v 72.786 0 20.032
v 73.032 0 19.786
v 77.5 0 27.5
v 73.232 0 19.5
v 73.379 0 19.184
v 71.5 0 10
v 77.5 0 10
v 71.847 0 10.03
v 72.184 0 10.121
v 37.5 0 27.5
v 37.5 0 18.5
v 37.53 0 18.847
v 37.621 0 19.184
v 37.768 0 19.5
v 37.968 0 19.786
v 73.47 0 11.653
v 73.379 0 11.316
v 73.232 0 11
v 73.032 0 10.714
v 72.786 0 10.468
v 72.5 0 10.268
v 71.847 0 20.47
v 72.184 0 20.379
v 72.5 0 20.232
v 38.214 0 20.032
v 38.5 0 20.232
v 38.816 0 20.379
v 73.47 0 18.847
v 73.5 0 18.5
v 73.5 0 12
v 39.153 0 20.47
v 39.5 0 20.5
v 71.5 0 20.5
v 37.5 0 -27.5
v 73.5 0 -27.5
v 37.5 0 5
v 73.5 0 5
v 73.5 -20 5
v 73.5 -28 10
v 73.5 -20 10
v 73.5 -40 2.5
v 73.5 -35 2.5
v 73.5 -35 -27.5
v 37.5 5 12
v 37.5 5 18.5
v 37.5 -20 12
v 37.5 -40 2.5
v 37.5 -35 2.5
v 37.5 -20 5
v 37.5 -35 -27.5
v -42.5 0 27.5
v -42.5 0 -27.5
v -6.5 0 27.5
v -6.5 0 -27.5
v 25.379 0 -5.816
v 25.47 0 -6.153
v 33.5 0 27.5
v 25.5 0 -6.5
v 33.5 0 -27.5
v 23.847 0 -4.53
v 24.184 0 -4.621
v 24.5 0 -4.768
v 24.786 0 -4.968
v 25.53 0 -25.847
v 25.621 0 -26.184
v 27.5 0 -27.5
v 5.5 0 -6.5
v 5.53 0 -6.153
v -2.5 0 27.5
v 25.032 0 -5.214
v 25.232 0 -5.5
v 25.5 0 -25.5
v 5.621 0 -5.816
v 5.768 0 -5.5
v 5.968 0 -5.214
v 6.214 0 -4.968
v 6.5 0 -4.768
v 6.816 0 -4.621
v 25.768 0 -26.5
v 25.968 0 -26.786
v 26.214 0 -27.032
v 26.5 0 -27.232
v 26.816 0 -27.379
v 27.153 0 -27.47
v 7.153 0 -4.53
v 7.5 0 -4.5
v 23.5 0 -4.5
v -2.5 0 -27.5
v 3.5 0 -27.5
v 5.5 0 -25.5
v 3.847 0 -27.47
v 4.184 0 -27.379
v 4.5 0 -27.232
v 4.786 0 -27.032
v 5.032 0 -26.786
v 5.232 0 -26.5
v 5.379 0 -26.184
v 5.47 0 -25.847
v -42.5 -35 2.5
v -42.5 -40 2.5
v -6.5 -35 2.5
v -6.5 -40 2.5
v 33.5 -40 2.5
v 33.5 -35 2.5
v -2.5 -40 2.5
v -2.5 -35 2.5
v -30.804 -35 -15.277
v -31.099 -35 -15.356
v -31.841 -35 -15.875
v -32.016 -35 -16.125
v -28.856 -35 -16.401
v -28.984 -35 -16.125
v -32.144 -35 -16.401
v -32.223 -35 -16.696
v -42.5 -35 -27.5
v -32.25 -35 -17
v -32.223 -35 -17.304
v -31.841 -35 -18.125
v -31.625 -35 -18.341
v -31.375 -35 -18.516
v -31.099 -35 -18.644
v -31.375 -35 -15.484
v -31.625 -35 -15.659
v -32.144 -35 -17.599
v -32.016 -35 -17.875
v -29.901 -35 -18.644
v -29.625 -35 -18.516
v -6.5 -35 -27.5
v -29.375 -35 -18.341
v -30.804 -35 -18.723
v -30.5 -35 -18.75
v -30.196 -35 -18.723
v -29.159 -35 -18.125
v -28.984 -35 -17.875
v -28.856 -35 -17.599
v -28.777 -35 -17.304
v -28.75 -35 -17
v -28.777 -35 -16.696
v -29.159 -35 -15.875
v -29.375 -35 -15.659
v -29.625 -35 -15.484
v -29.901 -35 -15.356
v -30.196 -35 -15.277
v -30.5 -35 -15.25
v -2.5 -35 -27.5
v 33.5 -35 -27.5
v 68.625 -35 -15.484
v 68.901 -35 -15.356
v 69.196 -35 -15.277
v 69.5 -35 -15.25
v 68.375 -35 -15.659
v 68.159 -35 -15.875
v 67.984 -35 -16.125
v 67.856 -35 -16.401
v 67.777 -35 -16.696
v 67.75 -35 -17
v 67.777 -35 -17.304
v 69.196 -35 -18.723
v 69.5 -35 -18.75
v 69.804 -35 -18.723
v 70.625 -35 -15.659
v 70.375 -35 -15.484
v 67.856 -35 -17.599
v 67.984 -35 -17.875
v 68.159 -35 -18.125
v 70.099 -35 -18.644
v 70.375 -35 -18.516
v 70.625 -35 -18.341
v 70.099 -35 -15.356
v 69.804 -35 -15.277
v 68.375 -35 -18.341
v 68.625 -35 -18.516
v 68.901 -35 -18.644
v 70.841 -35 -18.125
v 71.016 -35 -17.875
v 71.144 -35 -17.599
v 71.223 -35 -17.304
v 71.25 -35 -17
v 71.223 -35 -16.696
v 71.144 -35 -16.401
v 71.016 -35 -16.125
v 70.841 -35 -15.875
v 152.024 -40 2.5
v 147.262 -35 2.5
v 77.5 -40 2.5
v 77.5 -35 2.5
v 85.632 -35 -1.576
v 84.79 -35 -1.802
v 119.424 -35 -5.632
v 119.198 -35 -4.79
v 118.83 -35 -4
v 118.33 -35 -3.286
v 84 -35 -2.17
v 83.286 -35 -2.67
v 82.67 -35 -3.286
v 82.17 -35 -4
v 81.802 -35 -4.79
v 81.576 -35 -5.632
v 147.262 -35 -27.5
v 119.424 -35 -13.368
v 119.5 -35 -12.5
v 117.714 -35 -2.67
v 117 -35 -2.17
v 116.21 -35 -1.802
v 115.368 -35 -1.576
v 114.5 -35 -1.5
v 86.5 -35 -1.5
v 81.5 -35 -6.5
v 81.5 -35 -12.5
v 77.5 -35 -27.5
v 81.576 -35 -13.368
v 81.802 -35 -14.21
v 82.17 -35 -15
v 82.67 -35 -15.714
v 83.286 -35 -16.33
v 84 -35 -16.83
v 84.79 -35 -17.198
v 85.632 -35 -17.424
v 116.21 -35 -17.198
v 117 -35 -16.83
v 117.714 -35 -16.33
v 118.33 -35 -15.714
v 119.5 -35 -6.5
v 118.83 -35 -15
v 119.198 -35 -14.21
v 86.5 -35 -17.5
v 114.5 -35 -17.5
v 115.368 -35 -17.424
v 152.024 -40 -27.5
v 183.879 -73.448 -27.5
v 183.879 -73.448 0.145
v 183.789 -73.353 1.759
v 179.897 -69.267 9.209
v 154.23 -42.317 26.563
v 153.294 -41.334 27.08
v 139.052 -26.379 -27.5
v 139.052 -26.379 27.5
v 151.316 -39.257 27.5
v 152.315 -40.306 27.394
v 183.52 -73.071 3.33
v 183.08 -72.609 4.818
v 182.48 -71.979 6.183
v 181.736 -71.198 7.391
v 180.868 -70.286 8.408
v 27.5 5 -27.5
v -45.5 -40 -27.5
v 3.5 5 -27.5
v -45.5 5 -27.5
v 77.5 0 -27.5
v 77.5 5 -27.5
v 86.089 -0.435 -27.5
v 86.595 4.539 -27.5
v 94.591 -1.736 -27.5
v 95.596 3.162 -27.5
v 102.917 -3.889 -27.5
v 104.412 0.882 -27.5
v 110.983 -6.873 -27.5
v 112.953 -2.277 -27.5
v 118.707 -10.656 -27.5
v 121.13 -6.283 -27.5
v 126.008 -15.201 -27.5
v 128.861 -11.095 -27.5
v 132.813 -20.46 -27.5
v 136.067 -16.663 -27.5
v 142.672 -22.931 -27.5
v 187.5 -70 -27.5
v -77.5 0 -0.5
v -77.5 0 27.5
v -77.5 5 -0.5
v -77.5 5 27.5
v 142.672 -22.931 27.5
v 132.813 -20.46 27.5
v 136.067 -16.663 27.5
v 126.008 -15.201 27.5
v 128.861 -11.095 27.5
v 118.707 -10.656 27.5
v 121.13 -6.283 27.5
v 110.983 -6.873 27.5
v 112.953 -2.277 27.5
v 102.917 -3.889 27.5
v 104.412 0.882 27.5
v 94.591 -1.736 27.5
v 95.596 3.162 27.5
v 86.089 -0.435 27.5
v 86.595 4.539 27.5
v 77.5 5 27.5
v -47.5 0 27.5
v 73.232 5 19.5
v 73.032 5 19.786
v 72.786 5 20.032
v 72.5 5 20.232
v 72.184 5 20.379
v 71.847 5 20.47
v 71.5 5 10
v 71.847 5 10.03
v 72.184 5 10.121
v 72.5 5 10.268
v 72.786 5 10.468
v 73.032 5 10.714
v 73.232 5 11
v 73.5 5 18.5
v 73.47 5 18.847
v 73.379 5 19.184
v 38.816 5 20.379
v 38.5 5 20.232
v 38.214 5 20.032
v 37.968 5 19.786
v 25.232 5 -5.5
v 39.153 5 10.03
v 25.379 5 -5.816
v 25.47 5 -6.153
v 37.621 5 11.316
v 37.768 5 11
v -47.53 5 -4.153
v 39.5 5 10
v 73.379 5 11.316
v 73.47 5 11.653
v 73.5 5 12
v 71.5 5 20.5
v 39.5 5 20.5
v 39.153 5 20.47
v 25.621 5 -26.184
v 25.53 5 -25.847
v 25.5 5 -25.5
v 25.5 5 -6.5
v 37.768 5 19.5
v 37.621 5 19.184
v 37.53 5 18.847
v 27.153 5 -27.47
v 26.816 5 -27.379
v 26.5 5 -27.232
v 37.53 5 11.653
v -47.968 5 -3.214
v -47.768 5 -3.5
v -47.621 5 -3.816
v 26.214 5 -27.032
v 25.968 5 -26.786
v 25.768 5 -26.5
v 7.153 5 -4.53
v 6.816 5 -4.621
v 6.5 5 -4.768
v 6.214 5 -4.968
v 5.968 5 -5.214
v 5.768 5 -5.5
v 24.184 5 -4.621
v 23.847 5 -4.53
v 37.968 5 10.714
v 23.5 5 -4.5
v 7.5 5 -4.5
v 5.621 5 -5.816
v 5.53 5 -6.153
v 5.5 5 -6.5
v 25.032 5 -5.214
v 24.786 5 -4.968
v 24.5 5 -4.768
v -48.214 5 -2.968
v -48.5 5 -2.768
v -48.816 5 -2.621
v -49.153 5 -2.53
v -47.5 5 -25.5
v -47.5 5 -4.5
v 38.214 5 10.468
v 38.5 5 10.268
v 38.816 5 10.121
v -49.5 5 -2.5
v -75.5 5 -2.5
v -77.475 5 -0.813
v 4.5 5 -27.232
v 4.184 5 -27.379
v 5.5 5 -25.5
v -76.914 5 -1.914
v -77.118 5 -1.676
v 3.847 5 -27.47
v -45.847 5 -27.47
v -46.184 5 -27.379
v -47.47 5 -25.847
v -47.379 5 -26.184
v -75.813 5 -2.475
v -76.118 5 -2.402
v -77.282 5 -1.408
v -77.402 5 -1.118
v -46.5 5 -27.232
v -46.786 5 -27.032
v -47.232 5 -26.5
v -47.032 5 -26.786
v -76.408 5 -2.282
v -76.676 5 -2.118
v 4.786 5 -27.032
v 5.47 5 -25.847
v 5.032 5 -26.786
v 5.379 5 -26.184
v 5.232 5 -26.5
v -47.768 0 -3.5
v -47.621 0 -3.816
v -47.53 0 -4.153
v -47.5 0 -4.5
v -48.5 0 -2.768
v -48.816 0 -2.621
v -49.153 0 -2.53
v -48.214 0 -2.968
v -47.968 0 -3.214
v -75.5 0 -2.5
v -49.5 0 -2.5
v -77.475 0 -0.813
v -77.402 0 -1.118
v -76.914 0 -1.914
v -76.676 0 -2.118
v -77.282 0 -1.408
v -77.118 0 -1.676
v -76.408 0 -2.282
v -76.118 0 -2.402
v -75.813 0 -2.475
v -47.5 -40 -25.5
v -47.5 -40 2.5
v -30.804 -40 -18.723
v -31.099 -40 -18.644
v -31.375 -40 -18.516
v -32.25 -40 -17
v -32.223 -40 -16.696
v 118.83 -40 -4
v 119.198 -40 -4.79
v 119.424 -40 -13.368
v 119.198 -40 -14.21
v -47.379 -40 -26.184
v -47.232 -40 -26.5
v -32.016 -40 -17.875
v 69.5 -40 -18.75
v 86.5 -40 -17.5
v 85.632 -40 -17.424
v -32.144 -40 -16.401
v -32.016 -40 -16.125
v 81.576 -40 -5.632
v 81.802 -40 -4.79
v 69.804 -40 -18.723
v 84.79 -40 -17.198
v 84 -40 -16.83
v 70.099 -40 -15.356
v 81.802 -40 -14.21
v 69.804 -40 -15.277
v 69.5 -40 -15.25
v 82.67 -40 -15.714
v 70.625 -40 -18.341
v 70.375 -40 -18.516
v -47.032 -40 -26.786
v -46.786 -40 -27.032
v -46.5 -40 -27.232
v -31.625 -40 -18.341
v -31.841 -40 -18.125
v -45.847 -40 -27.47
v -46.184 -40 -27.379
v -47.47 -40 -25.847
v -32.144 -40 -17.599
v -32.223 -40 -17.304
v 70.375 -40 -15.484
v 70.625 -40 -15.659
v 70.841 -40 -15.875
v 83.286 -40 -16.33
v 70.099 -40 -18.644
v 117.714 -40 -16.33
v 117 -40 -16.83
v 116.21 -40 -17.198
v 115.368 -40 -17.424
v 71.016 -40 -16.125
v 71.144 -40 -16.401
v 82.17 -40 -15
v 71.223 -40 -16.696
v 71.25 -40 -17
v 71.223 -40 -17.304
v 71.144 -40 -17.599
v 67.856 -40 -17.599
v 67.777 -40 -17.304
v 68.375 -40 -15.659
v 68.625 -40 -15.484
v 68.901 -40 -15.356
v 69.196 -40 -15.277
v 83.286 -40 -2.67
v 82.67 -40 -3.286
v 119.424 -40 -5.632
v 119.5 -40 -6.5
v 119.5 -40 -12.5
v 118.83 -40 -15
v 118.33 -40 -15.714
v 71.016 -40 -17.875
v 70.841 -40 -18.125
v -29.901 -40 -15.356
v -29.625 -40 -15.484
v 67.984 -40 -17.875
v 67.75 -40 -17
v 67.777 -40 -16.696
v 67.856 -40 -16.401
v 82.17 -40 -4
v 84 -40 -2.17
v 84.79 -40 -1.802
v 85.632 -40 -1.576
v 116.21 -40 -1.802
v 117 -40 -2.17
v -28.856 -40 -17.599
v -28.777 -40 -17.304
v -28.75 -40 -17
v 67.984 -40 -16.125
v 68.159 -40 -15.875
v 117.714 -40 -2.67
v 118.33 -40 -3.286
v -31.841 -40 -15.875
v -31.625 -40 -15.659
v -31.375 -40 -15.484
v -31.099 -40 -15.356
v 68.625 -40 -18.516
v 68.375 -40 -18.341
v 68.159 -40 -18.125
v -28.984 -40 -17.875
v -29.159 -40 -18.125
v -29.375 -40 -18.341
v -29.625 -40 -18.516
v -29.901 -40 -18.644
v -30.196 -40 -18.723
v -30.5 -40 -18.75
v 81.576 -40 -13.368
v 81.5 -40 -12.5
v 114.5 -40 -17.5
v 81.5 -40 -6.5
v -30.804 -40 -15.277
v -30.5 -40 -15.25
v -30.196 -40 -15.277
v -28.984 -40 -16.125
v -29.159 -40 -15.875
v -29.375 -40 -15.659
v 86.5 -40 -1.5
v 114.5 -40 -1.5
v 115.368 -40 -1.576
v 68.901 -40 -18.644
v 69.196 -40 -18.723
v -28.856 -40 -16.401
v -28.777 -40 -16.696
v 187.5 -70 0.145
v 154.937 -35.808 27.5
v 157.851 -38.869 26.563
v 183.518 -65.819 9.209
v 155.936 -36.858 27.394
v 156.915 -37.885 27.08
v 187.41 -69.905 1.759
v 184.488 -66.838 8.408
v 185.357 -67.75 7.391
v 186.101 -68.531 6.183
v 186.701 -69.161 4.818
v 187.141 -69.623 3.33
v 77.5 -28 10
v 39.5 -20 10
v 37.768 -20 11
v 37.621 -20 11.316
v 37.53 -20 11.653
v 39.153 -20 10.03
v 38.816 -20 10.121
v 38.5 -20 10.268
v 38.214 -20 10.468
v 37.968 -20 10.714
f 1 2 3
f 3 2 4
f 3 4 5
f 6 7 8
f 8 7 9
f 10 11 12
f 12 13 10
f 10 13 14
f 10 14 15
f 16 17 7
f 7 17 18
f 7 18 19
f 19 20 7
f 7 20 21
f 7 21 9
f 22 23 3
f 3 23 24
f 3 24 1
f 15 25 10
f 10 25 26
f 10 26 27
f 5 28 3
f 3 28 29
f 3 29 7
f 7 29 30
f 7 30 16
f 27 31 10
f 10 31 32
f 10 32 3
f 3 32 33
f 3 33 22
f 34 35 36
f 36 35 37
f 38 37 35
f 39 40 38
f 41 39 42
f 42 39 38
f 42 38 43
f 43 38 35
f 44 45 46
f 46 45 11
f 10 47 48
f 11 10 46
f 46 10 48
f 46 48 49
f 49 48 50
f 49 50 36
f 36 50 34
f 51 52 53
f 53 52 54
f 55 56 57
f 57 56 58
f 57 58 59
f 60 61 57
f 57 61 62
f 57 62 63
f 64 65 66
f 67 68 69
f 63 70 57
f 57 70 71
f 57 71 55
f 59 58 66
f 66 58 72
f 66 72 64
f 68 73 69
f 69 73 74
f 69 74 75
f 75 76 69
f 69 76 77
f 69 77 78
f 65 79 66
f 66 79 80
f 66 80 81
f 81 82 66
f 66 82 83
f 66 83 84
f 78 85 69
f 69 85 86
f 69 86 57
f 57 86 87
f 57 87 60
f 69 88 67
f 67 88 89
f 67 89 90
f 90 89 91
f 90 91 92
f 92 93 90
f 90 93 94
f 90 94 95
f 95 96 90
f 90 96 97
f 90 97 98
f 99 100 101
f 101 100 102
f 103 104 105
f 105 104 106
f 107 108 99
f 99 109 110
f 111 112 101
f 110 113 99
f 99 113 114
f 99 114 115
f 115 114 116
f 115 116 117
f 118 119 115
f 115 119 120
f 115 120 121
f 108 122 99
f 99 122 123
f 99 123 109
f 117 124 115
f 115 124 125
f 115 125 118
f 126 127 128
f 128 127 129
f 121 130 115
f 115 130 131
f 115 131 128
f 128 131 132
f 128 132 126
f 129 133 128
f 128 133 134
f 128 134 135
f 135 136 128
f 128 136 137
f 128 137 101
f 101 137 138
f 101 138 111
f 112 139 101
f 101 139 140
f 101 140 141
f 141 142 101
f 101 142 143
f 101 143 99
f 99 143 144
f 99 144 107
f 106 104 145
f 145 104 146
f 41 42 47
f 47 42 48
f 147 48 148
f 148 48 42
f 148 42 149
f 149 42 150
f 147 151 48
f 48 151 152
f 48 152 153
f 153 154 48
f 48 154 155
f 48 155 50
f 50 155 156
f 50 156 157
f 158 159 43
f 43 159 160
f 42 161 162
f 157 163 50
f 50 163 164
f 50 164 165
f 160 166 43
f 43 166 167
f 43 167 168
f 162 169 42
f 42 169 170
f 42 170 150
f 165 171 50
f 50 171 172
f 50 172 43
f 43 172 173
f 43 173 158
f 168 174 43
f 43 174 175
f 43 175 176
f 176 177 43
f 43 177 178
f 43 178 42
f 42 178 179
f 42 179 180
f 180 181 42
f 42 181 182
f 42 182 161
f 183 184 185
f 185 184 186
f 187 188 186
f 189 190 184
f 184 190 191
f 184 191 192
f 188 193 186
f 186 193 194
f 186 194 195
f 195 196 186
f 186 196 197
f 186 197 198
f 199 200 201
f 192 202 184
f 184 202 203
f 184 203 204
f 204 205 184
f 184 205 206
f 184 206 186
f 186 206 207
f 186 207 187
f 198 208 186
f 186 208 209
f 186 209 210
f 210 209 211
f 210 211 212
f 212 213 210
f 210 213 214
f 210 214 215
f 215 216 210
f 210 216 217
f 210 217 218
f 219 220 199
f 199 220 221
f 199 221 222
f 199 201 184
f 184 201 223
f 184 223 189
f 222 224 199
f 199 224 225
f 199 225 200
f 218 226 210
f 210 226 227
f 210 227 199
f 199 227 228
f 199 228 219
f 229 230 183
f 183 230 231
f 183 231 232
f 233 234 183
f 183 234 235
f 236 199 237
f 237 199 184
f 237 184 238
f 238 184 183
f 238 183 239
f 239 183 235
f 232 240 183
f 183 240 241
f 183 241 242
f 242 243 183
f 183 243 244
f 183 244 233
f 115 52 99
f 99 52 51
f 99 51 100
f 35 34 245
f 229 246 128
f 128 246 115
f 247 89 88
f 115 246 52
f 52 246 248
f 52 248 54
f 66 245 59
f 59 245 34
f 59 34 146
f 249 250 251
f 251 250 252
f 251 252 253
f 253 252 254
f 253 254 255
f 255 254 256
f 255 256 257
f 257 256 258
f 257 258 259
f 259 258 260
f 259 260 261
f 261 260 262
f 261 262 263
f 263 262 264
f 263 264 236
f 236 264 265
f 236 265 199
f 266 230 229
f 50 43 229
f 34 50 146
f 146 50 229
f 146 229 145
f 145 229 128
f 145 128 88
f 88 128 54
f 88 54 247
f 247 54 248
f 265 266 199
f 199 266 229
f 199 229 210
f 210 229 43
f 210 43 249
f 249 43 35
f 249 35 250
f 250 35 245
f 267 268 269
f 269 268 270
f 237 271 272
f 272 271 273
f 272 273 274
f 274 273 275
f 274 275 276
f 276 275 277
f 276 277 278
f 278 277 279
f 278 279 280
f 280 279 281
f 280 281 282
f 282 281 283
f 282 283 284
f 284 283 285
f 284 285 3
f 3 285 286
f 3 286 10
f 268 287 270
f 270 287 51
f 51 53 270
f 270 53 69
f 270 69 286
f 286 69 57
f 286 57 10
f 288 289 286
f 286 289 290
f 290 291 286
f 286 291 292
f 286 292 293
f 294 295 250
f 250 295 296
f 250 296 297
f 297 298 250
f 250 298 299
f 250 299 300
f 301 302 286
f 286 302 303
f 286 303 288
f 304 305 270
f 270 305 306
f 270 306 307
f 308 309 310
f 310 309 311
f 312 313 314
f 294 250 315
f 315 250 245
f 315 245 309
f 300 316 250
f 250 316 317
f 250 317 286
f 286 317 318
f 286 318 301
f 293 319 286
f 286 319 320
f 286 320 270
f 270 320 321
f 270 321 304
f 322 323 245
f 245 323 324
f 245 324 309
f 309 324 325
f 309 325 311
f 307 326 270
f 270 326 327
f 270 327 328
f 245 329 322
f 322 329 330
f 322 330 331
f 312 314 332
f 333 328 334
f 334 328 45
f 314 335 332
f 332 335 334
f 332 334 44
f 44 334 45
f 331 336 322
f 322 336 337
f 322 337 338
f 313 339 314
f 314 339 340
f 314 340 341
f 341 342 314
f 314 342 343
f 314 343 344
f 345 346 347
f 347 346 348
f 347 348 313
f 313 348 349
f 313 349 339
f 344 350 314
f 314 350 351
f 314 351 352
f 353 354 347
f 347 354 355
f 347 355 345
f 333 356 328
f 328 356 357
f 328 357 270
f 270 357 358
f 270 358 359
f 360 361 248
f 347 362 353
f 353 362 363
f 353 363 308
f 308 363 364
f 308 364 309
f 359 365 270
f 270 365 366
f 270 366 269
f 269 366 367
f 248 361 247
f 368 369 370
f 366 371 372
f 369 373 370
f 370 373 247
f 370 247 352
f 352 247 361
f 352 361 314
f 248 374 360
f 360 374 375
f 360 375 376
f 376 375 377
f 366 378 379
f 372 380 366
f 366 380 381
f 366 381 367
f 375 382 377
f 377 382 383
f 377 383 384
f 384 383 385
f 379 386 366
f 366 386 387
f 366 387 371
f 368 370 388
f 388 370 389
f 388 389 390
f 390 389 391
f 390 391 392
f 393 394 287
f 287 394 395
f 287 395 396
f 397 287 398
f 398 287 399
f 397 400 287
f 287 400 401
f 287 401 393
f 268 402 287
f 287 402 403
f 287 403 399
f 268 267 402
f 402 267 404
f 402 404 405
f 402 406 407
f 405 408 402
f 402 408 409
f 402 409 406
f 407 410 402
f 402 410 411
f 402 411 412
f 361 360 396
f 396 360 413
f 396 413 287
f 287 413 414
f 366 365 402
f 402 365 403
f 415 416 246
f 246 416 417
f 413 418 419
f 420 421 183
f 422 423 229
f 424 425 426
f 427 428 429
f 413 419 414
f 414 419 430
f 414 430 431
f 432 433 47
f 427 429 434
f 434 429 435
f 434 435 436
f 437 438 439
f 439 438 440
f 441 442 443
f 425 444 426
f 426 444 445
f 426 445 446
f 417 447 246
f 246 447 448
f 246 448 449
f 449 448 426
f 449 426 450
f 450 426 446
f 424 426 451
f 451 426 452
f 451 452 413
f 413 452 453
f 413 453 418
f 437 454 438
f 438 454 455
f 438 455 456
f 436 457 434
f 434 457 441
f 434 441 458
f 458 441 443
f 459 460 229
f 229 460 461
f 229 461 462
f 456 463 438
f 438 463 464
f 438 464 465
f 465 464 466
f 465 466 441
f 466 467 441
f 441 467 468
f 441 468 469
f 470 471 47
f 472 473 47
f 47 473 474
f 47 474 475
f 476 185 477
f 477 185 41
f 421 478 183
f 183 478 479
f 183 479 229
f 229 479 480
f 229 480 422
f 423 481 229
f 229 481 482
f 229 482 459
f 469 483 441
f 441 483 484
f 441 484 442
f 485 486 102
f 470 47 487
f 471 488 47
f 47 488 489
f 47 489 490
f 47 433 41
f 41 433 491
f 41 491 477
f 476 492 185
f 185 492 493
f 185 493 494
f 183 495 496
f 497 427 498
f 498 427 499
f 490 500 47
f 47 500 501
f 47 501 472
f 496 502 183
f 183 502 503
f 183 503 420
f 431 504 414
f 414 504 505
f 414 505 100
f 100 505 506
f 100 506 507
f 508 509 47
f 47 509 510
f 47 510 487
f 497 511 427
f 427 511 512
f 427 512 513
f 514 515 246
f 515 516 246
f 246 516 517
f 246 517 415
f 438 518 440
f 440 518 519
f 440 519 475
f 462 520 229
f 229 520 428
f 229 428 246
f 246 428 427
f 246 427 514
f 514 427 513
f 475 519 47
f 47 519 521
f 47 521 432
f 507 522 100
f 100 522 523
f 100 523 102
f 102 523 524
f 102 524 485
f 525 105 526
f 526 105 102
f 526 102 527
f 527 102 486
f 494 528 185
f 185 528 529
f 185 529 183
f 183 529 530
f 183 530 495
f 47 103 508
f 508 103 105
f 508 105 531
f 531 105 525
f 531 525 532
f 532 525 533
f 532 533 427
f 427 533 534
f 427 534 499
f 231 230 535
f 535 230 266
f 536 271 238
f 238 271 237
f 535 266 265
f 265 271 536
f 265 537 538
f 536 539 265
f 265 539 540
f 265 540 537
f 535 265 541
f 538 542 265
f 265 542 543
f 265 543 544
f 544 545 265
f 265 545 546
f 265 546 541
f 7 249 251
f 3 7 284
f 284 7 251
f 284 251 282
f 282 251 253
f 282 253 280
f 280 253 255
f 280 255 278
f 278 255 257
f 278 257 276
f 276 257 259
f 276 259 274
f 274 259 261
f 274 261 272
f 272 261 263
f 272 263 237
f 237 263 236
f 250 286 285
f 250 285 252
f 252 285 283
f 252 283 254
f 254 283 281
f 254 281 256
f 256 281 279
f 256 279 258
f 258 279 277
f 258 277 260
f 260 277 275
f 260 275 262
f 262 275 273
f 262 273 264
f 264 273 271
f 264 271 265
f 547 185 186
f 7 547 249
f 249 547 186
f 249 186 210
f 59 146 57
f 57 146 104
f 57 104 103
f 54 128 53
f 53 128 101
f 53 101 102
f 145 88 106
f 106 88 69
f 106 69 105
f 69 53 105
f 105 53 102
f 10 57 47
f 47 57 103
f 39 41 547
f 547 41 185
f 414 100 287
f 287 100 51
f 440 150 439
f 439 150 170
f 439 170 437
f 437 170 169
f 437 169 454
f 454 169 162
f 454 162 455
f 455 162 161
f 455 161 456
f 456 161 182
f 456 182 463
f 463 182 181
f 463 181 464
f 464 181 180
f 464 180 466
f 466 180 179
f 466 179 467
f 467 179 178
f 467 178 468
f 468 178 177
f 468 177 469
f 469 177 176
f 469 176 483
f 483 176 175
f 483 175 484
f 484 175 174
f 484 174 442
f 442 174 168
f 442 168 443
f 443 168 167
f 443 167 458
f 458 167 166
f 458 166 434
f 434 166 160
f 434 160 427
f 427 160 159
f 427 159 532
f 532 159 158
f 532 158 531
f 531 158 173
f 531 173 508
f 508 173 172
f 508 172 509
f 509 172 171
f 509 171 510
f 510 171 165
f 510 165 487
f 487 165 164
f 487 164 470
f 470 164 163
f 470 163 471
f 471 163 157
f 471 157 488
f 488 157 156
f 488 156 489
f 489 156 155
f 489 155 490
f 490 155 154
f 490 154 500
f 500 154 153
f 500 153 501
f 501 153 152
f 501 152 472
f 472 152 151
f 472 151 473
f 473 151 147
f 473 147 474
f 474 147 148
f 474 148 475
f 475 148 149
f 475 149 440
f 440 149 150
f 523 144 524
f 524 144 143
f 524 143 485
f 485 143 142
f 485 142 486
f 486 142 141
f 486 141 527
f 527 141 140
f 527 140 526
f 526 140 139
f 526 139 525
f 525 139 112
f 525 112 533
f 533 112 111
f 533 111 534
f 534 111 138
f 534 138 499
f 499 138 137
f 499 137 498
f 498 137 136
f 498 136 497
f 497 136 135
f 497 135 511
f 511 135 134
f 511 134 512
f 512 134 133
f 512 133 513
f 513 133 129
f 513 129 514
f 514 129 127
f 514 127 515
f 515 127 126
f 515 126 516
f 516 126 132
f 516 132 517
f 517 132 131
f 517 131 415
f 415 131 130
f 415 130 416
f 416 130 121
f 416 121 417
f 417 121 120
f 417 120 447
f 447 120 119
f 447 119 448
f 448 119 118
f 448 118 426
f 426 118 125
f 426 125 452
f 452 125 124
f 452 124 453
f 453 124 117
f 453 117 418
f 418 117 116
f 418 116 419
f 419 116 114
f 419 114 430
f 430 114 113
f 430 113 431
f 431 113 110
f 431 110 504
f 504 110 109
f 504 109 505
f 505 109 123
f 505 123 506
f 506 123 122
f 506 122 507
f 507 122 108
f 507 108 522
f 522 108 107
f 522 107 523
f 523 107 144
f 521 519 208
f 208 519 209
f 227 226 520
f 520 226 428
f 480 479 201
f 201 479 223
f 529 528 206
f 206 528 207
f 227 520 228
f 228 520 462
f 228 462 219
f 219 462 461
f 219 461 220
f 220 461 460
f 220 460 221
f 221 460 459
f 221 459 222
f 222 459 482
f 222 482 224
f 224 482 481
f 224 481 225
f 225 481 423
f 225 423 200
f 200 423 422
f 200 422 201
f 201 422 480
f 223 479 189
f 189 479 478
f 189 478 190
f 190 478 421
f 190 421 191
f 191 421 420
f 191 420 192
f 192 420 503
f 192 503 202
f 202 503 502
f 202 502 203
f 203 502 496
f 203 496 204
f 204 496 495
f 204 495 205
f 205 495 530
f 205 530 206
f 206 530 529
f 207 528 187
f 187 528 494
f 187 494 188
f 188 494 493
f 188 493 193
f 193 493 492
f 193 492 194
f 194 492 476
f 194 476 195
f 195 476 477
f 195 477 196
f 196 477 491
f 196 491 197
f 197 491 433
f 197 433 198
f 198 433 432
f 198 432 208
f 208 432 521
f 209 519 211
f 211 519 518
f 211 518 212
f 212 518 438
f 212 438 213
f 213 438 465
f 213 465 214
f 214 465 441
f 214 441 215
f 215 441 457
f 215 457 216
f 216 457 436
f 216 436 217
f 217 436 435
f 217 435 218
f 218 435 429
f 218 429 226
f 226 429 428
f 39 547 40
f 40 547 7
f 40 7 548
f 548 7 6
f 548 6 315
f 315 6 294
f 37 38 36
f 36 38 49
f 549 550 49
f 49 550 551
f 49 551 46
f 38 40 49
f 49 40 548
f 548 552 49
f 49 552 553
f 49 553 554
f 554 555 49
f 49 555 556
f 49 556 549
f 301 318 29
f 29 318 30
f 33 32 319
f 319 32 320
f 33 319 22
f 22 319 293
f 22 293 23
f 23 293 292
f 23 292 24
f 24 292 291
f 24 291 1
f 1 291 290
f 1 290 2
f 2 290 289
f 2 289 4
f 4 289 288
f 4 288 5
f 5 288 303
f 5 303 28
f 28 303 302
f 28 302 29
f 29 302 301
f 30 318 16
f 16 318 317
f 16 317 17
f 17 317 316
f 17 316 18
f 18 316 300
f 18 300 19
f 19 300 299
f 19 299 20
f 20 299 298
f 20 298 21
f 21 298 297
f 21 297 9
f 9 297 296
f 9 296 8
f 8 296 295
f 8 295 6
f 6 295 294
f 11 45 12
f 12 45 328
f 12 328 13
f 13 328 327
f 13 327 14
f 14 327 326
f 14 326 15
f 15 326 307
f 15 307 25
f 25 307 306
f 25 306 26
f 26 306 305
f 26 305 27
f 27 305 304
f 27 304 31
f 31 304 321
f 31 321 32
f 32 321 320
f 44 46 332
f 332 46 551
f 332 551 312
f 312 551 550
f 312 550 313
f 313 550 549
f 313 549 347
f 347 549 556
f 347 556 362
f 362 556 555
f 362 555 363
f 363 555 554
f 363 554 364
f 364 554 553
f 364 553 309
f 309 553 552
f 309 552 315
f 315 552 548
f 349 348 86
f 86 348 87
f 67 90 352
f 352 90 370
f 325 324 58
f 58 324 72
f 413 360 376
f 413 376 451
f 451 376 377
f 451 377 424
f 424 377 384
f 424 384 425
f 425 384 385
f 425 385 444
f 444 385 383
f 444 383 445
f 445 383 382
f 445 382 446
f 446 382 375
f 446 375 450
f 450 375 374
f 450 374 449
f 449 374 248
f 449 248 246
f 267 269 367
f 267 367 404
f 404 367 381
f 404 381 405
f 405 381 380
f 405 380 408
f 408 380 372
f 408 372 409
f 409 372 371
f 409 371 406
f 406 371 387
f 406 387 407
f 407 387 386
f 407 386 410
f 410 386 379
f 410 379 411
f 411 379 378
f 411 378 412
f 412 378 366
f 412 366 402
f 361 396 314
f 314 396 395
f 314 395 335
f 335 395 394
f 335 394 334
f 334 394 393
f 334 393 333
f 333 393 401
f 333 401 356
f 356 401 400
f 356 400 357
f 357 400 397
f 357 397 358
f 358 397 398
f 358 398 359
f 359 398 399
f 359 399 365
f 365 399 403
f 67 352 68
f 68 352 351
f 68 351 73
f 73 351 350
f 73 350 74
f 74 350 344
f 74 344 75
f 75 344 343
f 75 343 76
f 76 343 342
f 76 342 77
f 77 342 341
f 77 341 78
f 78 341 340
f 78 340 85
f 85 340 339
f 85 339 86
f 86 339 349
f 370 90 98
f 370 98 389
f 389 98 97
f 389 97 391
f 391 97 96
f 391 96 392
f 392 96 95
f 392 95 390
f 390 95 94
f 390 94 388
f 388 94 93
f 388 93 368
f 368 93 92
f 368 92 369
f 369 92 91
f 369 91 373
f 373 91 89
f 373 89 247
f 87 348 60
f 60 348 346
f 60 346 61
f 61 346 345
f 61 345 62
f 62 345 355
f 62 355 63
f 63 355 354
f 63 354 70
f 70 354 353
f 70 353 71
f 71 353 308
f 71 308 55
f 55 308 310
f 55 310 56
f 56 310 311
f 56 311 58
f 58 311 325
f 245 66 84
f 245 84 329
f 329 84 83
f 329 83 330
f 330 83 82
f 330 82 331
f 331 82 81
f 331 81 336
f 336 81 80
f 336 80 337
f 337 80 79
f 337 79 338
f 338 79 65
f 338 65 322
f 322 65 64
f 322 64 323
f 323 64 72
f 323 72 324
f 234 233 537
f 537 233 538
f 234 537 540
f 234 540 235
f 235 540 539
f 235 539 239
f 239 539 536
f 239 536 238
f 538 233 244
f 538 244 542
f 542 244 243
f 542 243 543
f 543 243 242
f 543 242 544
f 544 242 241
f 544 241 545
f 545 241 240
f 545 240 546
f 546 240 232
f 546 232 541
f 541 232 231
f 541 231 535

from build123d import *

# Parameters (mm, degrees)
SKETCH1_W            = 155
SKETCH1_H            = 55
BOSS_EXTRUDE1_DEPTH  = 5
SKETCH2_W            = 30
SKETCH2_H            = 25
CUT_EXTRUDE2_DEPTH   = 5
SKETCH3_W            = 5
SKETCH3_H            = 55
BOSS_EXTRUDE2_DEPTH  = 40
SKETCH10_W           = 55
SKETCH10_H           = 5
SKETCH14_W           = 125
SKETCH14_H           = 30
BOSS_EXTRUDE7_DEPTH  = 5
BOSS_EXTRUDE8_REACH  = 107
SKETCH16_W           = 30
SKETCH16_H           = 5
SKETCH19_W           = 4
SKETCH19_H           = 55
BOSS_EXTRUDE9_DEPTH  = 40
CUT_EXTRUDE4_DEPTH   = 125
SKETCH18_R           = 1.75
CUT_EXTRUDE5_DEPTH   = 5
SKETCH20_W           = 38
SKETCH20_H           = 16
CUT_EXTRUDE6_DEPTH   = 5
FILLET1_R            = 5
SKETCH21_W           = 5
SKETCH21_H           = 20
BOSS_EXTRUDE10_DEPTH = 36
CUT_EXTRUDE7_DEPTH   = 4
SKETCH23_W           = 36
SKETCH23_H           = 10.5
CUT_EXTRUDE8_DEPTH   = 5
FILLET2_R            = 2
SKETCH24_W           = 20
SKETCH24_H           = 23
CUT_EXTRUDE9_DEPTH   = 5
FILLET3_R            = 2
CHAMFER1_SIZE        = 45
CHAMFER1_SIZE2       = 20.983844617
FILLET4_R            = 10
FILLET5_R            = 10


with BuildPart() as part:
    # Sketch1 → Boss-Extrude1 (new body)
    with BuildSketch(Plane(origin=(0, 0, 0), x_dir=(1, 0, 0), z_dir=(0, 1, 0))):
        Rectangle(SKETCH1_W, SKETCH1_H)
    extrude(amount=BOSS_EXTRUDE1_DEPTH)

    # Sketch2 → Cut-Extrude2 (cut)
    with BuildSketch(Plane(origin=(0, 5, 0), x_dir=(1, 0, 0), z_dir=(0, 1, 0))):
        with Locations((-62.5, 15)):
            Rectangle(SKETCH2_W, SKETCH2_H)
    extrude(amount=-CUT_EXTRUDE2_DEPTH, mode=Mode.SUBTRACT)

    # Sketch3 → Boss-Extrude2 (add)
    with BuildSketch(Plane.XZ):
        with Locations((-45, 0)):
            Rectangle(SKETCH3_W, SKETCH3_H)
    extrude(amount=BOSS_EXTRUDE2_DEPTH)

    # Sweep1: sweep along a path in Sketch9
    with BuildLine(Plane.XY.offset(27.5)) as sweep1_path:
        Line((187.5, -70), (142.672413793, -22.931034483))
        ThreePointArc((142.672413793, -22.931034483), (112.952736872, -2.276947298), (77.5, 5))
    # Sketch10 → Sweep1 (sweep)
    with BuildSketch(Plane(origin=(77.5, 0, 0), x_dir=(0, 0, -1), z_dir=(1, 0, 0))):
        with Locations((0, 2.5)):
            Rectangle(SKETCH10_W, SKETCH10_H)
    sweep(path=sweep1_path.line)

    # Sketch14 → Boss-Extrude7 (add)
    with BuildSketch(Plane(origin=(0, -40, 0), x_dir=(1, 0, 0), z_dir=(0, 1, 0))):
        with Locations((20, 12.5)):
            Rectangle(SKETCH14_W, SKETCH14_H)
    extrude(amount=BOSS_EXTRUDE7_DEPTH)

    # Boss-Extrude8: up to this face of the body (flat: up to its plane)
    boss_extrude8_end = Plane(part.part.faces().sort_by_distance((161.465517241, -49.913793103, 0))[0])
    # Sketch16 → Boss-Extrude8 (add, up to the picked face)
    with BuildSketch(Plane(origin=(82.5, 0, 0), x_dir=(0, 0, -1), z_dir=(1, 0, 0)), mode=Mode.PRIVATE) as boss_extrude8_sk1:
        with Locations((12.5, -37.5)):
            Rectangle(SKETCH16_W, SKETCH16_H)
    boss_extrude8_tool1 = split(extrude(boss_extrude8_sk1.sketch, amount=BOSS_EXTRUDE8_REACH, mode=Mode.PRIVATE), bisect_by=boss_extrude8_end, keep=Keep.BOTH, mode=Mode.PRIVATE)
    add(boss_extrude8_tool1.solids().sort_by_distance((82.5, -37.5, -12.5))[0])

    # Sketch19 → Boss-Extrude9 (add)
    with BuildSketch(Plane.XZ):
        with Locations((75.5, 0)):
            Rectangle(SKETCH19_W, SKETCH19_H)
        with Locations((35.5, 0)):
            Rectangle(SKETCH19_W, SKETCH19_H)
        with Locations((-4.5, 0)):
            Rectangle(SKETCH19_W, SKETCH19_H)
    extrude(amount=BOSS_EXTRUDE9_DEPTH)

    # Sketch17 → Cut-Extrude4 (cut)
    with BuildSketch(Plane.ZY.offset(47.5)):
        Polygon((27.5, 0), (2.5, -40), (27.5, -40), align=None)
    extrude(amount=-CUT_EXTRUDE4_DEPTH, mode=Mode.SUBTRACT)

    # Sketch18 → Cut-Extrude5 (cut)
    with BuildSketch(Plane(origin=(0, -35, 0), x_dir=(1, 0, 0), z_dir=(0, 1, 0))):
        with Locations((-30.5, 17)):
            Circle(SKETCH18_R)
        with Locations((69.5, 17)):
            Circle(SKETCH18_R)
    extrude(amount=-CUT_EXTRUDE5_DEPTH, mode=Mode.SUBTRACT)

    # Sketch20 → Cut-Extrude6 (cut)
    with BuildSketch(Plane(origin=(0, -35, 0), x_dir=(1, 0, 0), z_dir=(0, 1, 0))):
        with Locations((100.5, 9.5)):
            Rectangle(SKETCH20_W, SKETCH20_H)
    extrude(amount=-CUT_EXTRUDE6_DEPTH, mode=Mode.SUBTRACT)

    # Fillet1
    fillet1_edges = [part.edges().sort_by_distance(p)[0] for p in [
        (81.5, -37.5, -1.5),
        (81.5, -37.5, -17.5),
        (119.5, -37.5, -17.5),
        (119.5, -37.5, -1.5),
    ]]
    fillet(fillet1_edges, radius=FILLET1_R)

    # Sketch21 → Boss-Extrude10 (add)
    with BuildSketch(Plane.ZY.offset(-73.5)):
        with Locations((7.5, -10)):
            Rectangle(SKETCH21_W, SKETCH21_H)
    extrude(amount=BOSS_EXTRUDE10_DEPTH)

    # Sketch22 → Cut-Extrude7 (cut)
    with BuildSketch(Plane.ZY.offset(-73.5)):
        Polygon((10, -28), (27.5, 0), (10, 0), align=None)
    extrude(amount=-CUT_EXTRUDE7_DEPTH, mode=Mode.SUBTRACT)

    # Sketch23 → Cut-Extrude8 (cut)
    with BuildSketch(Plane.XZ):
        with Locations((55.5, 15.25)):
            Rectangle(SKETCH23_W, SKETCH23_H)
    extrude(amount=-CUT_EXTRUDE8_DEPTH, mode=Mode.SUBTRACT)

    # Fillet2
    fillet2_edges = [part.edges().sort_by_distance(p)[0] for p in [
        (37.5, -7.5, 10),
        (73.5, 2.5, 10),
        (73.5, 2.5, 20.5),
        (37.5, 2.5, 20.5),
    ]]
    fillet(fillet2_edges, radius=FILLET2_R)

    # Sketch24 → Cut-Extrude9 (cut)
    with BuildSketch(Plane.XZ):
        with Locations((15.5, -16)):
            Rectangle(SKETCH24_W, SKETCH24_H)
    extrude(amount=-CUT_EXTRUDE9_DEPTH, mode=Mode.SUBTRACT)

    # Fillet3
    fillet3_edges = [part.edges().sort_by_distance(p)[0] for p in [
        (-77.5, 2.5, -2.5),
        (-47.5, -17.5, -27.5),
        (-47.5, 2.5, -2.5),
        (5.5, 2.5, -4.5),
        (5.5, 2.5, -27.5),
        (25.5, 2.5, -27.5),
        (25.5, 2.5, -4.5),
    ]]
    fillet(fillet3_edges, radius=FILLET3_R)

    # Chamfer1
    chamfer1_edges = [part.edges().sort_by_distance(p)[0] for p in [
        (185.689655172, -71.724137931, 27.5),
    ]]
    chamfer1_side = [part.faces().sort_by_distance(p)[0] for p in [
        (111.864070979, -4.817167716, 27.5),
    ]]
    chamfer(chamfer1_edges, length=CHAMFER1_SIZE, length2=CHAMFER1_SIZE2, reference=chamfer1_side[0])

    # Fillet4
    fillet4_edges = [part.edges().sort_by_distance(p)[0] for p in [
        (185.689655172, -71.724137931, 6.516155383),
        (154.655172414, -39.137931034, 27.5),
    ]]
    fillet(fillet4_edges, radius=FILLET4_R)

    # Fillet5
    fillet5_edges = [part.edges().sort_by_distance(p)[0] for p in [
        (185.689655172, -71.724137931, -27.5),
    ]]
    fillet(fillet5_edges, radius=FILLET5_R)


solid = part.part
